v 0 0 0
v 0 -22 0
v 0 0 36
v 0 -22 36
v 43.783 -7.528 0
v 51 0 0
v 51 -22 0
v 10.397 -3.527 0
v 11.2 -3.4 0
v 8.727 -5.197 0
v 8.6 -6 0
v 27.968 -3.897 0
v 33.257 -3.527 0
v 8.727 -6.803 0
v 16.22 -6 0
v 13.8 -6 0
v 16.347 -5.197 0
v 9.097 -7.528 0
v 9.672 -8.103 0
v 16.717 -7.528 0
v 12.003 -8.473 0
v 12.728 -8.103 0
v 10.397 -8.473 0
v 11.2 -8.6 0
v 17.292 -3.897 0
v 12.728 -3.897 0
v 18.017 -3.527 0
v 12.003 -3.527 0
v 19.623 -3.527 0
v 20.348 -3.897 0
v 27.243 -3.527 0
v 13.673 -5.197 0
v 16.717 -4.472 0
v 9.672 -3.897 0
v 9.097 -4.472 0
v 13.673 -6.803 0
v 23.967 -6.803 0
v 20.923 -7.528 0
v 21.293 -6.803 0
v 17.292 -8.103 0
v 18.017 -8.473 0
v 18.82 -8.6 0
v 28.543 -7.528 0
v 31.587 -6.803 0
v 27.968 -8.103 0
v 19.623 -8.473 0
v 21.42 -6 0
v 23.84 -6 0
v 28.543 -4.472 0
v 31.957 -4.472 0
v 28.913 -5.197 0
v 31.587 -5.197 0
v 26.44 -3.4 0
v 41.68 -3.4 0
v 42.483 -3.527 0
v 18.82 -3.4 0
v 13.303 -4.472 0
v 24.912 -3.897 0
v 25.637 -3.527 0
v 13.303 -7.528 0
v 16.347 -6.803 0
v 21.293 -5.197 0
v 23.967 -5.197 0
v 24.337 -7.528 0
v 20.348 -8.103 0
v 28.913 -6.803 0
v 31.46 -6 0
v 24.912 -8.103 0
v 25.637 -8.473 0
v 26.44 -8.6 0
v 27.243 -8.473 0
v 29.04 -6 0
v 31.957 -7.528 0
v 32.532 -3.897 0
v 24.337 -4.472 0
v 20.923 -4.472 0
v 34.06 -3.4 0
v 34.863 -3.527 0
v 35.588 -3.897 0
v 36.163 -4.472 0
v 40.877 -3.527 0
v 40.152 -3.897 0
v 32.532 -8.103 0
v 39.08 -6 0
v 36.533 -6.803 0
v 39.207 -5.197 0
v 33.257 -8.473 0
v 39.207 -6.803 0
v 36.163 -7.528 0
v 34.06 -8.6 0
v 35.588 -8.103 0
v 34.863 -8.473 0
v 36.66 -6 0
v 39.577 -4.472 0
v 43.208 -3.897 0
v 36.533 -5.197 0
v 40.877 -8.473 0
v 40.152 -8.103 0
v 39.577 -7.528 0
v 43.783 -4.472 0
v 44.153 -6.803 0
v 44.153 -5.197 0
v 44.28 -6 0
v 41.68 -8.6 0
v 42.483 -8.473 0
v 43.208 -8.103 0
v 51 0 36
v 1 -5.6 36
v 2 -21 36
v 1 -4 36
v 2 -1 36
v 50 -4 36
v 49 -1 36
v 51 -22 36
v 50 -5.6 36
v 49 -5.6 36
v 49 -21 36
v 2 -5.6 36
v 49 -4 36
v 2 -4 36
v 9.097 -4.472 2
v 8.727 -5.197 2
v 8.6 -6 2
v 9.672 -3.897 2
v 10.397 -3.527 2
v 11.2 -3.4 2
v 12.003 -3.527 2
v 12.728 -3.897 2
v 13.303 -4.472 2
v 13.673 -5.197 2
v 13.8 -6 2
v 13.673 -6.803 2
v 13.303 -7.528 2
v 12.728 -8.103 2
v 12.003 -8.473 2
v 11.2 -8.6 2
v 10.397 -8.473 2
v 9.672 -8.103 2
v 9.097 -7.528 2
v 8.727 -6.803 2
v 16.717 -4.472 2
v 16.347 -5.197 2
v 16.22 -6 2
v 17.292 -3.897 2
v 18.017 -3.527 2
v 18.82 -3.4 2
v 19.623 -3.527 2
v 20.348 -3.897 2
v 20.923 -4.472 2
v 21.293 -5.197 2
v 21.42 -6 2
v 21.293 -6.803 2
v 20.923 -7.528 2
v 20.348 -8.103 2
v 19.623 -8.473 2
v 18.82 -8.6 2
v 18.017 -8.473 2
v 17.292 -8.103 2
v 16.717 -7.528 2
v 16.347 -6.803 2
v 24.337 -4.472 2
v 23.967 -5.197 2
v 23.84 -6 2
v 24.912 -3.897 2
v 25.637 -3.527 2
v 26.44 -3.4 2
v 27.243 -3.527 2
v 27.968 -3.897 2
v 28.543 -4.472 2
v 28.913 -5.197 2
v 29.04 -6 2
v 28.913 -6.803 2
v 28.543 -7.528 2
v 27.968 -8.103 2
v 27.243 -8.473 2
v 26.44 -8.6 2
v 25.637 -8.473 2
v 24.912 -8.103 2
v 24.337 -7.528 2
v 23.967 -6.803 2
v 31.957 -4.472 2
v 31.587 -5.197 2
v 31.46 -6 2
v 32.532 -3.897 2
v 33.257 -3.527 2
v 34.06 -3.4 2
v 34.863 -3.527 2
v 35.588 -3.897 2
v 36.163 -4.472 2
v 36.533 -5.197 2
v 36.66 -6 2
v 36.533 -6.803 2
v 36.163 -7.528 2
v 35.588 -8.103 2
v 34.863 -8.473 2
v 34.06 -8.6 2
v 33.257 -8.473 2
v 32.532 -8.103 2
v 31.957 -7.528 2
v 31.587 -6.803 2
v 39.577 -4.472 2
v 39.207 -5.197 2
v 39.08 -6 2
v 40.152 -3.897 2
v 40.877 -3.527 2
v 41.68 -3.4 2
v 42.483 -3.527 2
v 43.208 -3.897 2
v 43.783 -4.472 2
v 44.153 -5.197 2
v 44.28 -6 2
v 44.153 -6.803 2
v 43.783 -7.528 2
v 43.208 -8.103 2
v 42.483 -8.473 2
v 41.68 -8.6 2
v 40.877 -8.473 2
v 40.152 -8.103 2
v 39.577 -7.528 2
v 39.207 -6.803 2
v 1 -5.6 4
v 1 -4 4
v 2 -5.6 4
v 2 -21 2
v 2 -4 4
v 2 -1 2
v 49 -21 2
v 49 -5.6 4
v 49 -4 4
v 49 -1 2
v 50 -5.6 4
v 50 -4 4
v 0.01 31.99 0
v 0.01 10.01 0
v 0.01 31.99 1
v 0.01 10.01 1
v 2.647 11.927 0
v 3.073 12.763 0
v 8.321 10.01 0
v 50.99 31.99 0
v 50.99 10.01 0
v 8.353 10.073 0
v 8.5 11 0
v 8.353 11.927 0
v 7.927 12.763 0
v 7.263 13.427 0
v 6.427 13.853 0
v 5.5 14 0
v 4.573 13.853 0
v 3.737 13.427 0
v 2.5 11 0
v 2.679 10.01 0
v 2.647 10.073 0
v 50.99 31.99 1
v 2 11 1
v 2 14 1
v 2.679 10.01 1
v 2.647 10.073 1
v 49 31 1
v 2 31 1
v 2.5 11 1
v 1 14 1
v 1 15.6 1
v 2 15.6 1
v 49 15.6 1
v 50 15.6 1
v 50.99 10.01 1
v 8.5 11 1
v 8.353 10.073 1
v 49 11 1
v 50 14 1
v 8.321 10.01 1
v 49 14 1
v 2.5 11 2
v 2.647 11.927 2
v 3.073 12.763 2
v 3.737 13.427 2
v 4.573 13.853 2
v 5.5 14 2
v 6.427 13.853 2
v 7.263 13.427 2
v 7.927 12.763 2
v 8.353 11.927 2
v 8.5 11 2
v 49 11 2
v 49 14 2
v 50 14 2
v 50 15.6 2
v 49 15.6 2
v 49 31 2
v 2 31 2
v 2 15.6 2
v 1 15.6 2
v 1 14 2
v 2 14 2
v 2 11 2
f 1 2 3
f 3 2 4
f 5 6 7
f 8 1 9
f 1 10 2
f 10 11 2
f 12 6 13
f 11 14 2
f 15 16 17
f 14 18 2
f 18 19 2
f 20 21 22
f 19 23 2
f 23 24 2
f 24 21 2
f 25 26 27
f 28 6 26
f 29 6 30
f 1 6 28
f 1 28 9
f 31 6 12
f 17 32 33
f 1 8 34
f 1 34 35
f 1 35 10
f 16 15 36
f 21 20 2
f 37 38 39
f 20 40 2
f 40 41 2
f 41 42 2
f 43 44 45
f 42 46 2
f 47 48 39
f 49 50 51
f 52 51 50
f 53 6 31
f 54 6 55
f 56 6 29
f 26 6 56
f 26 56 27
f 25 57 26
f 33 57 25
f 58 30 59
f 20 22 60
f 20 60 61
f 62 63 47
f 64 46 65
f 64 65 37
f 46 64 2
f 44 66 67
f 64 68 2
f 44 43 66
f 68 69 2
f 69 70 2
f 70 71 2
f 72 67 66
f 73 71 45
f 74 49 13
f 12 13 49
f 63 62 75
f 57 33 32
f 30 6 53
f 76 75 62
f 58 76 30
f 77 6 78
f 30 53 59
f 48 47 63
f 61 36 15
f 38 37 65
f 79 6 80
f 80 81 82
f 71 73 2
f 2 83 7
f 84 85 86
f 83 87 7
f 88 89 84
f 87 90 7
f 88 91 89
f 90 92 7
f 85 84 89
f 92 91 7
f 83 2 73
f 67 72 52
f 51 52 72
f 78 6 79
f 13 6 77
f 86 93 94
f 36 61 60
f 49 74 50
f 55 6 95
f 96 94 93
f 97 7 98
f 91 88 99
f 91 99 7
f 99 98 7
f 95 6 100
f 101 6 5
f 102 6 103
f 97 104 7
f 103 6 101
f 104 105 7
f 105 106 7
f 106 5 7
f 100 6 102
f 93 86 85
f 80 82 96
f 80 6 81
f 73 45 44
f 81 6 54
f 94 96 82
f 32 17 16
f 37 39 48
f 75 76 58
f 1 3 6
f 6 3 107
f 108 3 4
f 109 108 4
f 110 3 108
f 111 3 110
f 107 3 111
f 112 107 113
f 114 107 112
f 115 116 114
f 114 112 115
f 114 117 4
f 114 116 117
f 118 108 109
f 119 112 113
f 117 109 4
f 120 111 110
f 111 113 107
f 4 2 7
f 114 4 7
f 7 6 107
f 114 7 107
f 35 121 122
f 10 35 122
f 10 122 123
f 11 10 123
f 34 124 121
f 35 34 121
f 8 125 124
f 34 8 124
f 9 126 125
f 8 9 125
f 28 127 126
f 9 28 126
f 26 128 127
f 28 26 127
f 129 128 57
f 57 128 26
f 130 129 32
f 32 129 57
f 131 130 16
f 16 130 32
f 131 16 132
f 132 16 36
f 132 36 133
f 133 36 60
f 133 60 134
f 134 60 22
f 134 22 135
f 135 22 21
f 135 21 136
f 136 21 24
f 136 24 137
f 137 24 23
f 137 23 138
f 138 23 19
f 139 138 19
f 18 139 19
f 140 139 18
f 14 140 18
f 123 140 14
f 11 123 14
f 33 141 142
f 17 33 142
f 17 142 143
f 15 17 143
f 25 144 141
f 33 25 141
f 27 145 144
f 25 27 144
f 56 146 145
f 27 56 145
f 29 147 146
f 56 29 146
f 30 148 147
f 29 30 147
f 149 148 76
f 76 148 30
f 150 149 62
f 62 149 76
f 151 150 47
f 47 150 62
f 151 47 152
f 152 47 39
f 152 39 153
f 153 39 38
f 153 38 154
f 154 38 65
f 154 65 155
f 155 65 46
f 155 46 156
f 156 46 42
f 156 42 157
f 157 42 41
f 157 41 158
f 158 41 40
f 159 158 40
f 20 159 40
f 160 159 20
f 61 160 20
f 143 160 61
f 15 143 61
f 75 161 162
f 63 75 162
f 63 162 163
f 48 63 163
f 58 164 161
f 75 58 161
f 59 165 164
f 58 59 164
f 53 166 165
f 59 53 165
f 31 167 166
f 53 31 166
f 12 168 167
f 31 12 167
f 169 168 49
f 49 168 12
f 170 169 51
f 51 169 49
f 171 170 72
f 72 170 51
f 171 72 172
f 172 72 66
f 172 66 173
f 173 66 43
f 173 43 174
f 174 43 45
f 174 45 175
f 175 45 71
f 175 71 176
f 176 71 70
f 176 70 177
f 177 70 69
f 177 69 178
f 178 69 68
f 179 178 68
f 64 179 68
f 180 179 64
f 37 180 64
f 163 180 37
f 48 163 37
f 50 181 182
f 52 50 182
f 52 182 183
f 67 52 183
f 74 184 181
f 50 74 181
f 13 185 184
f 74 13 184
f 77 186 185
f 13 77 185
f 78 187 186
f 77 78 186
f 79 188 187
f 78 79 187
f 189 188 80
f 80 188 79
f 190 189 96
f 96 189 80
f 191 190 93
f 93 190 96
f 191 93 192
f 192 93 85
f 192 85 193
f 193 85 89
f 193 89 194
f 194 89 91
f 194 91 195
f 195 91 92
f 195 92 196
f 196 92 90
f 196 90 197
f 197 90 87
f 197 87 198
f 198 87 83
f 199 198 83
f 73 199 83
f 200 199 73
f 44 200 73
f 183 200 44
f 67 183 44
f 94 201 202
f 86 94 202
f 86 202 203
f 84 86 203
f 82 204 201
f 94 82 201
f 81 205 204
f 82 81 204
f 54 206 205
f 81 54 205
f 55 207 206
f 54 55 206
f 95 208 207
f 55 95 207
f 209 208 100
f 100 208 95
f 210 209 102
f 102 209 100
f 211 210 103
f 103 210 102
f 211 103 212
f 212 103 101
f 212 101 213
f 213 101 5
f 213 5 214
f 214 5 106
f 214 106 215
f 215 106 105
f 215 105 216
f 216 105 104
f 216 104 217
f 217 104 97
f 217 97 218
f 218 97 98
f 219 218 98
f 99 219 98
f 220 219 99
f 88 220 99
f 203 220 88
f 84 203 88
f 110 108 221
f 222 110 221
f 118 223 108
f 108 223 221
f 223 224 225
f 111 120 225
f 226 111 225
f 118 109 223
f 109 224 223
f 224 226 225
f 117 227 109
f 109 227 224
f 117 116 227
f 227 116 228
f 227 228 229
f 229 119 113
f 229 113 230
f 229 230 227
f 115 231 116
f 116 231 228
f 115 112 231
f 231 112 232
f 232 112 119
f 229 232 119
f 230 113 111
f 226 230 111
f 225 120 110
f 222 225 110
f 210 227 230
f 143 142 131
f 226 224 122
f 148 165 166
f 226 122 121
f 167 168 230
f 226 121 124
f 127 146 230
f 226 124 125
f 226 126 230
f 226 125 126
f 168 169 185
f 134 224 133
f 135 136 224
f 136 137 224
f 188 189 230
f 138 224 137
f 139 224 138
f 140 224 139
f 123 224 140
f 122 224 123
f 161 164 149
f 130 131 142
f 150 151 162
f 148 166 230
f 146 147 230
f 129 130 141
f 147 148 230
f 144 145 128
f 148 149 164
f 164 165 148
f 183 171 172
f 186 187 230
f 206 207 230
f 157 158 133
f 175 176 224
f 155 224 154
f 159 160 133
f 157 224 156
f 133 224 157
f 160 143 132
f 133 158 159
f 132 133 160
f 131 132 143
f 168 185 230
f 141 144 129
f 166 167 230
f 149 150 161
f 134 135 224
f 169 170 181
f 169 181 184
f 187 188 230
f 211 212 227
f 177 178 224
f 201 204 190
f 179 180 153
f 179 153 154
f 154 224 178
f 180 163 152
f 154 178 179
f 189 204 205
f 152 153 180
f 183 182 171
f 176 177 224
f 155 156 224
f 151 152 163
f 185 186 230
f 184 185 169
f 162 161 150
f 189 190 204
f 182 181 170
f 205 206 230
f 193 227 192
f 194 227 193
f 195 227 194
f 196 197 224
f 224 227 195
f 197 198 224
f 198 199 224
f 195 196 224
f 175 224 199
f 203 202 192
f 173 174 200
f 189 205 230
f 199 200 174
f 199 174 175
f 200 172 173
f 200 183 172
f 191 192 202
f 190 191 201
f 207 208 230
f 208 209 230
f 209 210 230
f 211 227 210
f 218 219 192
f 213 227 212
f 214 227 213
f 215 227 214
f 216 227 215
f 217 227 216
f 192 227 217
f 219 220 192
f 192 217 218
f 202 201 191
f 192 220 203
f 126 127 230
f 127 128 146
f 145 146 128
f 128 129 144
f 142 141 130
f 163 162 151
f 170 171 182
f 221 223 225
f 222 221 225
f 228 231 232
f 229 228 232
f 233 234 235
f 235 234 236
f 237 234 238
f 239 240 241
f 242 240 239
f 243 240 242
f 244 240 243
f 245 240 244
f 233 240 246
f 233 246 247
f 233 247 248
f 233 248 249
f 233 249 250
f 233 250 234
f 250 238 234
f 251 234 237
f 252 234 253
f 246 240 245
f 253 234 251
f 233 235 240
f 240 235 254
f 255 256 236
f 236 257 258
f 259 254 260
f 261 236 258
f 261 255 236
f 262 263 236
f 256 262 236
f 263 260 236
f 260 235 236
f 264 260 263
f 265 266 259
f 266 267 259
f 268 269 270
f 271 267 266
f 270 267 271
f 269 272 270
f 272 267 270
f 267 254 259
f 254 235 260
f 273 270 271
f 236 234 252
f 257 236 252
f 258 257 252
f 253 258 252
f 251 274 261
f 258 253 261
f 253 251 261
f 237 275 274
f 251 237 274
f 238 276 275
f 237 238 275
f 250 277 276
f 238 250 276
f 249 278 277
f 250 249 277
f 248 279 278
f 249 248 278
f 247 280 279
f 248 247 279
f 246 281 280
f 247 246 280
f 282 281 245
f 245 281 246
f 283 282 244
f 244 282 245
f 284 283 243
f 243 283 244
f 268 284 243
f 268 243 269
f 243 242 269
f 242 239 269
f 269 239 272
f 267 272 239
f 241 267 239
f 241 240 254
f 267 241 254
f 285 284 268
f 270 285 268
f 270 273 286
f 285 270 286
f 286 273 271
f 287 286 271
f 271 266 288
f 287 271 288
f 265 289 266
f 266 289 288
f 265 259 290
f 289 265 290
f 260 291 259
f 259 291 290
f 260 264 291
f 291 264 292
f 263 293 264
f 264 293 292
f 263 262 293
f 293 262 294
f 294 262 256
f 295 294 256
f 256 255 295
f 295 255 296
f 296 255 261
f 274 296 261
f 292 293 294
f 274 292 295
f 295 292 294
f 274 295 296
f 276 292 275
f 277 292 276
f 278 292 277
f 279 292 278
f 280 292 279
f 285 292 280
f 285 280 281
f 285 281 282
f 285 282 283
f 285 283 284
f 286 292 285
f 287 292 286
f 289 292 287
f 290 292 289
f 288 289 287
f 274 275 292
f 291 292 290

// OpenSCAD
// Quick and dirty enclosure for the arduino shift light

module board() {
	cube([49, 29, 1.6]);
	for(i=[0:4]) {
	    translate([10.2 + i*7.62, 0, 2]) rotate([90, 0, 0]) hull() {
			cylinder(r=2.6, h=8.7-2.5, $fn=20);
			translate([0,0,8.7-2.6]) sphere(2.6, $fn=20);
		}
	}
	translate([1, 7, 0]) cube([42, 18, 16]);
}


module box() {
	difference() {
		cube([51, 36, 22]);
		translate([2, 2, 1]) cube([47, 36, 20]);
		translate([1, 6, 4]) union() {
			board();
			translate([0, -2, 0]) cube([49, 40, 1.6]);
		}
	}
}

module lid() {
    translate([0, 37, -10]) rotate([180, 0, 0]) 
    difference() {
	    translate([0.01, 35, 0.01]) cube([50.98, 2, 21.98]);
        box();
        translate([5.5, 38, 1]) rotate([90, 0, 0]) cylinder(r=3, h=10, $fn=20);
    }
}

rotate([90, 0, 0]) union() {
	box(); 
	lid();
	%translate([1, 6, 4]) board();
}
